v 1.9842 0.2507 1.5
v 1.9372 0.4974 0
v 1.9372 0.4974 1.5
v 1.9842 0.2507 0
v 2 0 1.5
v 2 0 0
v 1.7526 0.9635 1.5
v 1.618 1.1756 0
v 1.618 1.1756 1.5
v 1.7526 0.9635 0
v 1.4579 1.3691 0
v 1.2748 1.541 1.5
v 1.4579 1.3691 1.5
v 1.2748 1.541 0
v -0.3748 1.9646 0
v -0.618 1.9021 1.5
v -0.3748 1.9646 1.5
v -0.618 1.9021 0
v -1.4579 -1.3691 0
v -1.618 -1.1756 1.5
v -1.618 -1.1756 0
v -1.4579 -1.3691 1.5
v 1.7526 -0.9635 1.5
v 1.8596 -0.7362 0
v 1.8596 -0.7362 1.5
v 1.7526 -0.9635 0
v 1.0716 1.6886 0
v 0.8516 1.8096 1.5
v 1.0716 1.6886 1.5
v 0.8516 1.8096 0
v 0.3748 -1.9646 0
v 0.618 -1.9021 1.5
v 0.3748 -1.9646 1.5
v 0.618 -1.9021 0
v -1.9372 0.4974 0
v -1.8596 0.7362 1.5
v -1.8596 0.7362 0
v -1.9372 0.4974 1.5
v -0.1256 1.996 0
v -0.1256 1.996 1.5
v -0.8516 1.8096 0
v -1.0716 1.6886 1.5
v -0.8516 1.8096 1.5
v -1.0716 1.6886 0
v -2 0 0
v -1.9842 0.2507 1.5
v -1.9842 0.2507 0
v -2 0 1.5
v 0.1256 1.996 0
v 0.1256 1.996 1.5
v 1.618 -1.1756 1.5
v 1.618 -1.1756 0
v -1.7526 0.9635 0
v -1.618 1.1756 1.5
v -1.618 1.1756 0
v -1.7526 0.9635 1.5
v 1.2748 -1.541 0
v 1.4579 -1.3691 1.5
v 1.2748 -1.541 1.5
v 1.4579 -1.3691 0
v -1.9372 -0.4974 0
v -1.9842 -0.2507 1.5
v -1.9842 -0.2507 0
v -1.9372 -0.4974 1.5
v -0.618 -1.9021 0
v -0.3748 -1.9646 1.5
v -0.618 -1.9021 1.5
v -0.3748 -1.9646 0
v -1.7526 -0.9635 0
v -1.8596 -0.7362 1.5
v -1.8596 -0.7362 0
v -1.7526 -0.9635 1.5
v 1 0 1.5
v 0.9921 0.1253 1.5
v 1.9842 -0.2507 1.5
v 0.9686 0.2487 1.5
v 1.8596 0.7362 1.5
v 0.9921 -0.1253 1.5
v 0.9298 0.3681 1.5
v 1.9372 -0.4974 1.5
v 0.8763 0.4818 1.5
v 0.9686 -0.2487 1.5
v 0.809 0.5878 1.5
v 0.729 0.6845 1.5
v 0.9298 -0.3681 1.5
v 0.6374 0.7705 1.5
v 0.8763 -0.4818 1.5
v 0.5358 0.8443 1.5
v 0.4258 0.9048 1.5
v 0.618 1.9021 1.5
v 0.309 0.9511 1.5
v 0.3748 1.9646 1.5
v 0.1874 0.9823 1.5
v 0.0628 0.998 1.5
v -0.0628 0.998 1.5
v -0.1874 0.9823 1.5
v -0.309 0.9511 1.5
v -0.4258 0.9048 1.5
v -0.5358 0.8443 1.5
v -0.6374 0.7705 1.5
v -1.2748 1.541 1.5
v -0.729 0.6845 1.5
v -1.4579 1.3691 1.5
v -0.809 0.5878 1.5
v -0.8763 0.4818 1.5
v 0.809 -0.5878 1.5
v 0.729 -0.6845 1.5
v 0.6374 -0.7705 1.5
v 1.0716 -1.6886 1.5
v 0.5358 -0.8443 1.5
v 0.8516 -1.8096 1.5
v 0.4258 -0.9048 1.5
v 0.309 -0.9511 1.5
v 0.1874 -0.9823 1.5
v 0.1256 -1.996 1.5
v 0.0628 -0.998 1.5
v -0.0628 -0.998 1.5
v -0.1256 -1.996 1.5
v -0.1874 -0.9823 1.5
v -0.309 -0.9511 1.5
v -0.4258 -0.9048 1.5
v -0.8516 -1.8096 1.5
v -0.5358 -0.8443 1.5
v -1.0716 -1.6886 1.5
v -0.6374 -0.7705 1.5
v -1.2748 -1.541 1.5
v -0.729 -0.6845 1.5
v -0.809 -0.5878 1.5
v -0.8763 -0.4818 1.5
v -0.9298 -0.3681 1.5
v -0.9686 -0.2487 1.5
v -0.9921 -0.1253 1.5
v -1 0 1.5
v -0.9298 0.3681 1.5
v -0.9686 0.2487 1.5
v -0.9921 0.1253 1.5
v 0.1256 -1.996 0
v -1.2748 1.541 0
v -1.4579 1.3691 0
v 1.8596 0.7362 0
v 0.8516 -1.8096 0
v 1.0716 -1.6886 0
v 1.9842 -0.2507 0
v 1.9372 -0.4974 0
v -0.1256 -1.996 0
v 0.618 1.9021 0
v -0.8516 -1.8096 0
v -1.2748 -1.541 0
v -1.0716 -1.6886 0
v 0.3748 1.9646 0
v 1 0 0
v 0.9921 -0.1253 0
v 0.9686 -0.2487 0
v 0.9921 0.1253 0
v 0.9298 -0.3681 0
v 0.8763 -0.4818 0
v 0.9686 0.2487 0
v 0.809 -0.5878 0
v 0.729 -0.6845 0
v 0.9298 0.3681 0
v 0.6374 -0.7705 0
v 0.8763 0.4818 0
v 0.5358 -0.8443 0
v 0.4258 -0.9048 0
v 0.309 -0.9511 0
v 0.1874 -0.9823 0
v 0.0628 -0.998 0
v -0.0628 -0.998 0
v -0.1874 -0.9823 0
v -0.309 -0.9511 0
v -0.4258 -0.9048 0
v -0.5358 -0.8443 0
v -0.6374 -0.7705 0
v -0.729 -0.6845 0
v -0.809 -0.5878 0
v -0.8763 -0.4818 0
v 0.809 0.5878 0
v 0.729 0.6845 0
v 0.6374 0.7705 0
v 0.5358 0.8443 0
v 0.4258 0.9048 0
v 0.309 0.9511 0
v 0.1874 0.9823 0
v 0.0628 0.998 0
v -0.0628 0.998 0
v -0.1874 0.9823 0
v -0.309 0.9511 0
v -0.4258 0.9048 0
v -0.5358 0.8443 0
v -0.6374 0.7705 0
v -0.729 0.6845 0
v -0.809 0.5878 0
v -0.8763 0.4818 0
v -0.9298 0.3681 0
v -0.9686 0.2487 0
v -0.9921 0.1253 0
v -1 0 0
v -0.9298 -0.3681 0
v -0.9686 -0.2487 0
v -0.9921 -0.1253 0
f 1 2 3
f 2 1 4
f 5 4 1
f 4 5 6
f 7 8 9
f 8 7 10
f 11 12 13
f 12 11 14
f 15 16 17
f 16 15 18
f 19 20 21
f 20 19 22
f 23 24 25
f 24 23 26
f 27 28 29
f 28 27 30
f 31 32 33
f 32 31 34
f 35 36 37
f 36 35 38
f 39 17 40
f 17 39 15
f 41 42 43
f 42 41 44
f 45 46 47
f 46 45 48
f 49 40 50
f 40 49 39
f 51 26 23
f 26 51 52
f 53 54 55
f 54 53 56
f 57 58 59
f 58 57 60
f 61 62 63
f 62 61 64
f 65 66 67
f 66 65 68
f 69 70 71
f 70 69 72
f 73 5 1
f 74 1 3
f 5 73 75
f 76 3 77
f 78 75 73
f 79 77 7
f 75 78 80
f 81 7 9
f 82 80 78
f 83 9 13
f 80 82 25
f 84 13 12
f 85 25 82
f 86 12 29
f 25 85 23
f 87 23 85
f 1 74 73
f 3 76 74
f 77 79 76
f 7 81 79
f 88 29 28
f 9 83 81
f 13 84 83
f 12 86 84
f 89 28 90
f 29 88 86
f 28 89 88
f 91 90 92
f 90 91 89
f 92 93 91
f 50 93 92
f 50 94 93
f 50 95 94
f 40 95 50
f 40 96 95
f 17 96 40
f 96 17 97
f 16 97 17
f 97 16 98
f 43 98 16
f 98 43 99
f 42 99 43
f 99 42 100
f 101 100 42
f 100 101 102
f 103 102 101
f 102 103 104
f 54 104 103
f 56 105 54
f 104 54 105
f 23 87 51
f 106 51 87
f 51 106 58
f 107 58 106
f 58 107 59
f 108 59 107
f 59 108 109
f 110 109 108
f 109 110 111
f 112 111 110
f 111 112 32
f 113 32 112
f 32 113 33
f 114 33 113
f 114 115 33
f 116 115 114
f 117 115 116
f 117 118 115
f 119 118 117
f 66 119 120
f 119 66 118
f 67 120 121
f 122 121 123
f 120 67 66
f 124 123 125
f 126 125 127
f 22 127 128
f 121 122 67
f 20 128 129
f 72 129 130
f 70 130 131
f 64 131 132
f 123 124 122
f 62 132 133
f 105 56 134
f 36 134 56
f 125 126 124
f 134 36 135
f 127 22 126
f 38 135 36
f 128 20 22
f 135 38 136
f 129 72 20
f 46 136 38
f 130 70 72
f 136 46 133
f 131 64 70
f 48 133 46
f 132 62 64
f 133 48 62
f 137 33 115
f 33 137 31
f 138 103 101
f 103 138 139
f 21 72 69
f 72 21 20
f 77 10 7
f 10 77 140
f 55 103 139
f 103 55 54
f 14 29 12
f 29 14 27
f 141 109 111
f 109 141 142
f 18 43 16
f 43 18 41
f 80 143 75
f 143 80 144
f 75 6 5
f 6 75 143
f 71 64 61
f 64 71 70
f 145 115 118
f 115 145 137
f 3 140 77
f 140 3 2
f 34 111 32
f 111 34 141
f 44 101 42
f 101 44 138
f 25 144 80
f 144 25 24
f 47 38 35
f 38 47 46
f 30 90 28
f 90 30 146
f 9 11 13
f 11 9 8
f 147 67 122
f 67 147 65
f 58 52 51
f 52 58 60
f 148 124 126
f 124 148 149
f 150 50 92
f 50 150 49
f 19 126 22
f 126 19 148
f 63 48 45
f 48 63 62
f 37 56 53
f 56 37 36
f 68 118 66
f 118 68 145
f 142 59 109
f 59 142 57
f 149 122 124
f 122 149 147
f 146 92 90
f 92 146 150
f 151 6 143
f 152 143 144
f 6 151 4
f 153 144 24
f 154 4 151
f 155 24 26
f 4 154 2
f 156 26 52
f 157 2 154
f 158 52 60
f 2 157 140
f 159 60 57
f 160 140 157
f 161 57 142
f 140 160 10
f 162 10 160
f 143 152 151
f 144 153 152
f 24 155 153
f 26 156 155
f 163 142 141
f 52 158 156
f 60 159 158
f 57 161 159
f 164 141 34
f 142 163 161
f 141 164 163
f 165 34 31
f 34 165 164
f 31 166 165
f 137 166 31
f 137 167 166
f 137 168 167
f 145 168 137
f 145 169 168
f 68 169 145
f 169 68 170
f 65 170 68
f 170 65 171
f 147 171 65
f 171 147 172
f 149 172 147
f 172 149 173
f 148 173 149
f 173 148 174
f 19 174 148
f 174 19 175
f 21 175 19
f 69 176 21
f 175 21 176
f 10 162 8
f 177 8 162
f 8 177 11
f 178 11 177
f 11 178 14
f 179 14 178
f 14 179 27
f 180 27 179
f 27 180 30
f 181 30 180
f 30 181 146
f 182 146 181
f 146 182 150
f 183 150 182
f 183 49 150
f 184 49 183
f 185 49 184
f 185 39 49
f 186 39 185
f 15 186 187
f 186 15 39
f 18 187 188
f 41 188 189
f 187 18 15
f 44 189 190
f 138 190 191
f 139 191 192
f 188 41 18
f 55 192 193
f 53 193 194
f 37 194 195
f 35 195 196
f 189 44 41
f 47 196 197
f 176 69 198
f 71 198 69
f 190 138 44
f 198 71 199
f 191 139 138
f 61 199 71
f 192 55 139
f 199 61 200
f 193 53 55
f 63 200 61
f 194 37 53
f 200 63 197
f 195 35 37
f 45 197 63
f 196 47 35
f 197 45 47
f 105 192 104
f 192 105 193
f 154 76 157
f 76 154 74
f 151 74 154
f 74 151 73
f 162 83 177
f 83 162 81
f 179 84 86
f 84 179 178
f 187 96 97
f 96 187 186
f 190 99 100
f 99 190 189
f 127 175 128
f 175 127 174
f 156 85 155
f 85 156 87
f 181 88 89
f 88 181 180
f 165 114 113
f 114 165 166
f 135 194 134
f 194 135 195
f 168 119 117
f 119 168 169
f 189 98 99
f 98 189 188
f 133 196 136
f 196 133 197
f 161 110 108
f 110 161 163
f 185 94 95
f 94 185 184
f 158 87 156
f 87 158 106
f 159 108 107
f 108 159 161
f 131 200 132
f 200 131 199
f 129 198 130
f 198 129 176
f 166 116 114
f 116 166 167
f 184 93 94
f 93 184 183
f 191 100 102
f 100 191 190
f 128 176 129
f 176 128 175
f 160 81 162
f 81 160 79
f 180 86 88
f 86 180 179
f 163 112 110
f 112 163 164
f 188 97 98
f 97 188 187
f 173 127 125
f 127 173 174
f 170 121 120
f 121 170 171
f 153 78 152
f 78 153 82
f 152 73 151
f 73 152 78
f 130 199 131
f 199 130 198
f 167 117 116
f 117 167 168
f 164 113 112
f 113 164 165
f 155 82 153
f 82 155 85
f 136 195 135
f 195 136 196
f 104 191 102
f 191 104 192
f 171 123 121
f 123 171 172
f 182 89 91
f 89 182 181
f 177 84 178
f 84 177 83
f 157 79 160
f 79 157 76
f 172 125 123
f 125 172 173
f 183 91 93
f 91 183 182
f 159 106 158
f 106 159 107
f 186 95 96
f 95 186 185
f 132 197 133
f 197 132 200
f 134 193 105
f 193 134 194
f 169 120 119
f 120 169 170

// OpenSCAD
$fn = 50;

difference(){
     cylinder(1.5, d=4, true);
     translate([0,0,-1]){
          cylinder(3, d=2, true);
     }
}
